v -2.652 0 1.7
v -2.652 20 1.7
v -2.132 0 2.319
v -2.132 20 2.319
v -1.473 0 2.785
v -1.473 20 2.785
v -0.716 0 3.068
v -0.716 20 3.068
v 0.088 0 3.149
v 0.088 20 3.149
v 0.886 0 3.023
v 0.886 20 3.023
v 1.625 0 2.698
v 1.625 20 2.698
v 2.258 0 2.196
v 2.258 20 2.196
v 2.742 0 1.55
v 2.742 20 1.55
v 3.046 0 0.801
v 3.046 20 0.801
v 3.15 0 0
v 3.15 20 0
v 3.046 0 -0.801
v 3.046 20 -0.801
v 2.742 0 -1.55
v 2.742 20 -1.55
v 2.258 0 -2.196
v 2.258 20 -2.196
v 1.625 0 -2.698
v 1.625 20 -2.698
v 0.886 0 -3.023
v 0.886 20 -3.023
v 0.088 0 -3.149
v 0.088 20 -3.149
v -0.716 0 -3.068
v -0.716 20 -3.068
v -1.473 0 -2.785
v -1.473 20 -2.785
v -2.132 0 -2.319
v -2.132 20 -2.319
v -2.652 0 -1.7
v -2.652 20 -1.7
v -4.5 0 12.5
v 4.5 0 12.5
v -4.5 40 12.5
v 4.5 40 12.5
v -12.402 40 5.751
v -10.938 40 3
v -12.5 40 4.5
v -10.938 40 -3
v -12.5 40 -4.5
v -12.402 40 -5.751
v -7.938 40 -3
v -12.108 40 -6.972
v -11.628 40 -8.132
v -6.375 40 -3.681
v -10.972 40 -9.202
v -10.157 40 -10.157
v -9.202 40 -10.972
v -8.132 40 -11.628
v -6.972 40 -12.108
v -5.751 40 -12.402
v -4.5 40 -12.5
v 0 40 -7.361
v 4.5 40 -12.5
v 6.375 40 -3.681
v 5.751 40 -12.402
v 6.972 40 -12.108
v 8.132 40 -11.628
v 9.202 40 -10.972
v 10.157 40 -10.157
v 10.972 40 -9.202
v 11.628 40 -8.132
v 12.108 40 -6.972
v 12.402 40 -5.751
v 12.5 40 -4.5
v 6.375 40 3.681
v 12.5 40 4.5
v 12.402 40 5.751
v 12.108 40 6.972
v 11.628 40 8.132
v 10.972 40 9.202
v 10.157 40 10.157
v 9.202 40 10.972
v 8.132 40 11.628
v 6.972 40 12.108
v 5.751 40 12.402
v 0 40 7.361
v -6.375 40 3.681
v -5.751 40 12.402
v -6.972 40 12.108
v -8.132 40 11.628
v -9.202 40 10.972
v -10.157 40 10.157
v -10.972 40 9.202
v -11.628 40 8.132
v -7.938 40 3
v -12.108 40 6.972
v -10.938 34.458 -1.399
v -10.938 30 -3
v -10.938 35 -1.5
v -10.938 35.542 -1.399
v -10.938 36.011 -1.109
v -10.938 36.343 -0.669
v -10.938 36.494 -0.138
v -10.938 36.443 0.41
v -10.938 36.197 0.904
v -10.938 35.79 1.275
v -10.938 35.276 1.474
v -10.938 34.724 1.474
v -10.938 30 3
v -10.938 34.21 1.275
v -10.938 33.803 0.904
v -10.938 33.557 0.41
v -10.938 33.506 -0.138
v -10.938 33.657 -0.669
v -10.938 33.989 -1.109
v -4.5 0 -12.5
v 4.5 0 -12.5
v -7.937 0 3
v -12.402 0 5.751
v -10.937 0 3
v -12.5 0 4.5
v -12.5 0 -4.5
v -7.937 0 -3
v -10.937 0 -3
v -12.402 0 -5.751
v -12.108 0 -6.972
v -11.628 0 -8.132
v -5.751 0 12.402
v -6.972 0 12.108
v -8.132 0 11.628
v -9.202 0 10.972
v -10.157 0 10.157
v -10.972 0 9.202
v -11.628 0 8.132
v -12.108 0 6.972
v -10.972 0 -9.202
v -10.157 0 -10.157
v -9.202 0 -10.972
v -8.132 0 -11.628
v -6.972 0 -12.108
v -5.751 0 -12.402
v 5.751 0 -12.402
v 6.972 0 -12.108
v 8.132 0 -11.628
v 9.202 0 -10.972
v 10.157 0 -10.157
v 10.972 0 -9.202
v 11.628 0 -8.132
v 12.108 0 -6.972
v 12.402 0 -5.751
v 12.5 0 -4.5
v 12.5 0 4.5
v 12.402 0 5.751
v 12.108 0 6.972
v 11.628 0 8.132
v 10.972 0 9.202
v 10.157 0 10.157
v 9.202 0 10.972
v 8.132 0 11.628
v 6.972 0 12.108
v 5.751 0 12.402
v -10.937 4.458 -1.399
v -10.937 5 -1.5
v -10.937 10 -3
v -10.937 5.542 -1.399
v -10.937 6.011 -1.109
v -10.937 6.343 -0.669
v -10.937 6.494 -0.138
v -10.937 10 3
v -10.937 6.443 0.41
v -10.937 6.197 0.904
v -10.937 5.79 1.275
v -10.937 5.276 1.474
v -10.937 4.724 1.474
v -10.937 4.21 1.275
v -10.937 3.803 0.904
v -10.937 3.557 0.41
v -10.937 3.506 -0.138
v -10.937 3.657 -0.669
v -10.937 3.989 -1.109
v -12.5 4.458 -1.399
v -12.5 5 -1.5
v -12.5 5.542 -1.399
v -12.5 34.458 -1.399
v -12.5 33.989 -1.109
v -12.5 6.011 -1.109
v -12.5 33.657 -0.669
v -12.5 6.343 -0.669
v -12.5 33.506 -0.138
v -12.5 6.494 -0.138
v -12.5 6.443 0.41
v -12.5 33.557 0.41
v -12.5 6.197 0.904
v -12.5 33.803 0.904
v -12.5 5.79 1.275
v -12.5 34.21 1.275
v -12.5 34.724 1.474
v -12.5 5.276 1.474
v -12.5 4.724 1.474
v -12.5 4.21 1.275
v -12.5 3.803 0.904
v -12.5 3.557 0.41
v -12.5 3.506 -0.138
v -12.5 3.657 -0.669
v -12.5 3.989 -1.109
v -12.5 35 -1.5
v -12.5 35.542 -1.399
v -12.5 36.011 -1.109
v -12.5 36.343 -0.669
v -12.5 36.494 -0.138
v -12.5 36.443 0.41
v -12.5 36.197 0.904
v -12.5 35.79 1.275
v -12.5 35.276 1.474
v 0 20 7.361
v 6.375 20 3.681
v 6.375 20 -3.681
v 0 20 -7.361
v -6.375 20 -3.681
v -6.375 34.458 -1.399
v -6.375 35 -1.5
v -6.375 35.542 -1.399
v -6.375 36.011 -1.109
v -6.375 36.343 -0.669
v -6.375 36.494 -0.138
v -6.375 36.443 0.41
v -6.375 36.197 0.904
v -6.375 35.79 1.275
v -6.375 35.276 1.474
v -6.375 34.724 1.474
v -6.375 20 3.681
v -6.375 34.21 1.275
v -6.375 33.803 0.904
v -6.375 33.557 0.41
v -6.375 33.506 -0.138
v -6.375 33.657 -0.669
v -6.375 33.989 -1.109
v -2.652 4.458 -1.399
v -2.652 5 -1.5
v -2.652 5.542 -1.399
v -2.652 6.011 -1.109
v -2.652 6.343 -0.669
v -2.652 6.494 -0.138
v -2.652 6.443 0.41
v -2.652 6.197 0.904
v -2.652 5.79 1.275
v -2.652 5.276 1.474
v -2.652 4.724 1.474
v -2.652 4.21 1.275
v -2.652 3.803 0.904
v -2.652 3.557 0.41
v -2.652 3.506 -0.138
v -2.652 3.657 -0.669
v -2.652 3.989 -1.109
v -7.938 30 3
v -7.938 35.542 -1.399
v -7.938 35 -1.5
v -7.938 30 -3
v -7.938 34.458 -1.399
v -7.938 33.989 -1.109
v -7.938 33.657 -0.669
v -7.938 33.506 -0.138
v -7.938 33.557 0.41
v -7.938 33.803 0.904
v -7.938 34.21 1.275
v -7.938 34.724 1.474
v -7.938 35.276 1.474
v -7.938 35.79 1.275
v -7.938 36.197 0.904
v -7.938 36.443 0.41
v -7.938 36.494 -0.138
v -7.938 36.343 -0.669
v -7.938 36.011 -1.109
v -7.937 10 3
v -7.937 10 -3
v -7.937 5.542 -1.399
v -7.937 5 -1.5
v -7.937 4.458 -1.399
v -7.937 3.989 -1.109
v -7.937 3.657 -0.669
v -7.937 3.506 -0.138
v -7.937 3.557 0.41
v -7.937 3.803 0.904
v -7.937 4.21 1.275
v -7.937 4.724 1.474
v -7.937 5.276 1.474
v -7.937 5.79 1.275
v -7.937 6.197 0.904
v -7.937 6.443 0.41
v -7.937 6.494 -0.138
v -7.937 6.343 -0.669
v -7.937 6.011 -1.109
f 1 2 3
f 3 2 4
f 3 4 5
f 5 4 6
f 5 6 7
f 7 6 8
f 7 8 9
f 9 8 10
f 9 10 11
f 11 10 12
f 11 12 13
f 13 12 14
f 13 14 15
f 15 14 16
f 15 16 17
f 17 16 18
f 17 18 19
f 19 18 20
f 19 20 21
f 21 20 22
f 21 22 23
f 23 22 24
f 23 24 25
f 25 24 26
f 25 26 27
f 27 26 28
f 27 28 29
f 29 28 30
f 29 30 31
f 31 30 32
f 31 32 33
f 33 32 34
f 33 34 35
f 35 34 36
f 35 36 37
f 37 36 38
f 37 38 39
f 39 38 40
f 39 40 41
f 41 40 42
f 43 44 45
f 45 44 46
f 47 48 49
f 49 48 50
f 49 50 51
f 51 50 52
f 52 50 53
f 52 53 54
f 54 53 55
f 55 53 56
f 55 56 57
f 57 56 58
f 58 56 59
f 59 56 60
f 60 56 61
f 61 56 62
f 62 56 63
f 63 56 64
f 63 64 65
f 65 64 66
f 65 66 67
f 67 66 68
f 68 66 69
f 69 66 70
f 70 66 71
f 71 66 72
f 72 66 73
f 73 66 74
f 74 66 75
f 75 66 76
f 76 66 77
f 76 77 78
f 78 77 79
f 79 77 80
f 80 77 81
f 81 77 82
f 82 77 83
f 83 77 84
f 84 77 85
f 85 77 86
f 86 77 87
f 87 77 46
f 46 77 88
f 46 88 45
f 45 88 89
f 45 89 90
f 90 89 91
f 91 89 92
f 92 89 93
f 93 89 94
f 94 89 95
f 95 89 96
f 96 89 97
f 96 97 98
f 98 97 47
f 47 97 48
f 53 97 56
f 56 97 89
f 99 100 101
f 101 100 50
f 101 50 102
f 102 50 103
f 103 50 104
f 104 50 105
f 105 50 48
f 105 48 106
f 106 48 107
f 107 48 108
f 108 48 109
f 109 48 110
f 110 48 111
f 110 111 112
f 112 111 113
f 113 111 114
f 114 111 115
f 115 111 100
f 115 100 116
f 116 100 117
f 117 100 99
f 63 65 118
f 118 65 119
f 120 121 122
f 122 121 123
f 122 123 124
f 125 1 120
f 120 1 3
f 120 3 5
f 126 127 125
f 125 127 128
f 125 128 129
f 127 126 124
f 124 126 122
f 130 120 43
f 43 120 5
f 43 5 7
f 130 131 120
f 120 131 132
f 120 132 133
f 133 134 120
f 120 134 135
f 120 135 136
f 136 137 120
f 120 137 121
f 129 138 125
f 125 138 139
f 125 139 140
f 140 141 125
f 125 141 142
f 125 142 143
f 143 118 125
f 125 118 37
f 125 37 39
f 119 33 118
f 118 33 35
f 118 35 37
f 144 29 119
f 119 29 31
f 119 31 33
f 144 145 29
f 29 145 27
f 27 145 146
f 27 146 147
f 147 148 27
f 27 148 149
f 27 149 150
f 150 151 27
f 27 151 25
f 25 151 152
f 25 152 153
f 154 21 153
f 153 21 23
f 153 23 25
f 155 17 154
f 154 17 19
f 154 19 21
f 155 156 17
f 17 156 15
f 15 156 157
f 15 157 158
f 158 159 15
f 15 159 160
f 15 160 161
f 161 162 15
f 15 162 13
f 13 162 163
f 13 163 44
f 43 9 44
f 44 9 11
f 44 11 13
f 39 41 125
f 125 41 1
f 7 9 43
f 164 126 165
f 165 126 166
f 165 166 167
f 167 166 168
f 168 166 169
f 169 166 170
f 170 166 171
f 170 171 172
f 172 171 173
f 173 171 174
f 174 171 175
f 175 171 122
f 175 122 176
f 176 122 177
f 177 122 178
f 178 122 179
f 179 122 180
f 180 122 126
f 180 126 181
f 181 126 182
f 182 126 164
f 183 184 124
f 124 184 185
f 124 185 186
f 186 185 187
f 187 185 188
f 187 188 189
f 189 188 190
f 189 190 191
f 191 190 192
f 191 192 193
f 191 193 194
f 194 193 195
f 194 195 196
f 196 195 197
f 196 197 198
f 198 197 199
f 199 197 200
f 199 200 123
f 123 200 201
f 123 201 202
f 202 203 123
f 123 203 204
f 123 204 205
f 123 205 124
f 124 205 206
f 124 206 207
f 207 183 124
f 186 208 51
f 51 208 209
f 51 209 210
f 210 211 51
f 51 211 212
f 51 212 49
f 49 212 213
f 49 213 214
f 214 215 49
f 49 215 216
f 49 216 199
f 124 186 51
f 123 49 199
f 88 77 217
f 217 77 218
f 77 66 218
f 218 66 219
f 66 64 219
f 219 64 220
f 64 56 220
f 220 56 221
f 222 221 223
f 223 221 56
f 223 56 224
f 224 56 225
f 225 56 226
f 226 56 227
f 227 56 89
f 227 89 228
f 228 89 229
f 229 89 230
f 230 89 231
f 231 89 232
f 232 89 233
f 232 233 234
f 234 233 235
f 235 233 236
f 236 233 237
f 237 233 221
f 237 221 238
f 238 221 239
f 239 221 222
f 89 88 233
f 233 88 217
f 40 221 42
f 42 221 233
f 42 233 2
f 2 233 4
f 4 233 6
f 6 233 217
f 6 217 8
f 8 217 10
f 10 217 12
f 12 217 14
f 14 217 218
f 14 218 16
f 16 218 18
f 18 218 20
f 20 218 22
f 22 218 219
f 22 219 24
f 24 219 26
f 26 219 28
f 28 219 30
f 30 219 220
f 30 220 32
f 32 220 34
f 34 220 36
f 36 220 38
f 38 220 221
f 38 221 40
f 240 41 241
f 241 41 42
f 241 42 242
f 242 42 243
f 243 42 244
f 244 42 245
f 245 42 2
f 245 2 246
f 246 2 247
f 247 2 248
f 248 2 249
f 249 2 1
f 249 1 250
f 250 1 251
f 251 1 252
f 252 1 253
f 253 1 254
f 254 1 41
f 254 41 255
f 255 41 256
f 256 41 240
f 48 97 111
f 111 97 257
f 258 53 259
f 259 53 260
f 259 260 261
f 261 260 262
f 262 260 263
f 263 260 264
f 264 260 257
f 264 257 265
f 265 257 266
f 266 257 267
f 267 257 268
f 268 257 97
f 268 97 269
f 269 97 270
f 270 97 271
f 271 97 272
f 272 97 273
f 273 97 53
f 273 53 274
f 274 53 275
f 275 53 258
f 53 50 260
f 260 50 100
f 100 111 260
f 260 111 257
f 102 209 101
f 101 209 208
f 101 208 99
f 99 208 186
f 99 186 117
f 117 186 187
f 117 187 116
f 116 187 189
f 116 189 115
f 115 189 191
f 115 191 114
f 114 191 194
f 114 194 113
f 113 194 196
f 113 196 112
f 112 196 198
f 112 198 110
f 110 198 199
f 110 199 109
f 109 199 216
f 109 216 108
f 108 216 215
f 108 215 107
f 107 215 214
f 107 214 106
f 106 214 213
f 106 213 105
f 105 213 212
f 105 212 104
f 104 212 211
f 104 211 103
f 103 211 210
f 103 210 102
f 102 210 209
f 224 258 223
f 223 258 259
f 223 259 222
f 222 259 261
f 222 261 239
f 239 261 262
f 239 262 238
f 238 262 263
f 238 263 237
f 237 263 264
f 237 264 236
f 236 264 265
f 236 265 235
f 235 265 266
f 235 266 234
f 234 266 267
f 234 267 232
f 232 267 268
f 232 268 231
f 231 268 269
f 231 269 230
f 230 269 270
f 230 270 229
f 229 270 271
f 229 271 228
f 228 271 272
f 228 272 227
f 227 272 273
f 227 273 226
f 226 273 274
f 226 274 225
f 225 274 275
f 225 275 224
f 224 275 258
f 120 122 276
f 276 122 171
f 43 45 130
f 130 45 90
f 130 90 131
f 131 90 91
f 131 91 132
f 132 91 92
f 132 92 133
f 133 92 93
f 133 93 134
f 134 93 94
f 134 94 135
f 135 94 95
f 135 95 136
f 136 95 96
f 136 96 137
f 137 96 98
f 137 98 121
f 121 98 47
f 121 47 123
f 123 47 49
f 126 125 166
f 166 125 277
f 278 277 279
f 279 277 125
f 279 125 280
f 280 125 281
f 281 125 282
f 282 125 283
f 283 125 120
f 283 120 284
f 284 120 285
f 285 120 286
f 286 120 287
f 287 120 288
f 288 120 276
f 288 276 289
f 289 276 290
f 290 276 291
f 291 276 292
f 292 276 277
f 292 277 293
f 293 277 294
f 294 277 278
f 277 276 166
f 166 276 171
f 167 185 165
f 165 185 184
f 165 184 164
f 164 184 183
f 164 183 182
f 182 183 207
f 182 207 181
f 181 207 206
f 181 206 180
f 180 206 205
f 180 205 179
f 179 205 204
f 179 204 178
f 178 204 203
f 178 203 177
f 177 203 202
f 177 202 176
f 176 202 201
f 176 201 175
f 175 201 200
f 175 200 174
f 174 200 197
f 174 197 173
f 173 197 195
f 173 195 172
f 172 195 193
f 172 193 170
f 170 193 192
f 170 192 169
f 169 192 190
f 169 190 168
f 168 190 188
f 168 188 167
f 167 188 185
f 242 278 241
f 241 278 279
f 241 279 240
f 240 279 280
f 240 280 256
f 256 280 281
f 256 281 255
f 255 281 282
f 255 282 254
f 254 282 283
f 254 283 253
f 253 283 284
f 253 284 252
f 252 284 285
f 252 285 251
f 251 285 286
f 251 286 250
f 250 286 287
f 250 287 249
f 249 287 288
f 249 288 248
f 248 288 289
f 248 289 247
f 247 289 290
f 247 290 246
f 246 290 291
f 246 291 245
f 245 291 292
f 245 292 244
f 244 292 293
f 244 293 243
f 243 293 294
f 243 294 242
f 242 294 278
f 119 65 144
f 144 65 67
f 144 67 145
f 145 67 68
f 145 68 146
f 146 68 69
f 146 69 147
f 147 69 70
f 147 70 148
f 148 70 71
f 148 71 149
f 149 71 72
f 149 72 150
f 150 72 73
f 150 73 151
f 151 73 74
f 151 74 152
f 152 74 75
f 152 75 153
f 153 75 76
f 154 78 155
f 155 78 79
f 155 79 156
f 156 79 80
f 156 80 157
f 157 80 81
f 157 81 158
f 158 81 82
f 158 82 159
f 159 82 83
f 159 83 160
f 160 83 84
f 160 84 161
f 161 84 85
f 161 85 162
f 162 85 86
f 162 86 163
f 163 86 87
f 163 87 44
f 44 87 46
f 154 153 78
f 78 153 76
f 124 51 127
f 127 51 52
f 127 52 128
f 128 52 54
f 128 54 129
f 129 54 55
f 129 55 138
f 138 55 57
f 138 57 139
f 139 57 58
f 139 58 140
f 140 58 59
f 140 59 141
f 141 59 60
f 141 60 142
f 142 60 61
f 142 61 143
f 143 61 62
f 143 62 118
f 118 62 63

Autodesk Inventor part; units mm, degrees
ref_plane "YZ Plane" through (0, 0, 0) normal (1, 0, 0) x (0, 1, 0)
ref_plane "XZ Plane" through (0, 0, 0) normal (0, 1, 0) x (-1, 0, 0)
ref_plane "XY Plane" through (0, 0, 0) normal (0, 0, 1) x (1, 0, 0)
sketch "Sketch11" plane through (0, 0, 0) normal (0, 1, 0) x (-1, 0, 0)
  arc A0 (2.6519, 1.7) -> (2.6519, -1.7) centre (0, 0) ccw
  line L0 (2.6519, 1.7) -> (2.6519, -1.7)
  line L1 (12.5, 12.5) -> (-12.5, 12.5)
  line L2 (-12.5, 12.5) -> (-12.5, -12.5)
  line L3 (-12.5, -12.5) -> (12.5, -12.5)
  line L4 (12.5, -12.5) -> (12.5, 12.5)
  line L5 (12.5, 12.5) -> (-12.5, -12.5) construction
  line L6 (-12.5, 12.5) -> (12.5, -12.5) construction
  dimension "d45" = 6.3
  dimension "d46" = 3.4
  dimension "d47" = 25
  dimension "d48" = 25
extrude "Extrusion8" add sketch "Sketch11" along normal blind 40
sketch "Sketch12" plane through (0, 40, 0) normal (0, 1, 0) x (1, 0, 0)
  line L0 (0, -7.3612) -> (6.375, -3.6806)
  line L1 (6.375, -3.6806) -> (6.375, 3.6806)
  line L2 (6.375, 3.6806) -> (0, 7.3612)
  line L3 (0, 7.3612) -> (-6.375, 3.6806)
  line L4 (-6.375, 3.6806) -> (-6.375, -3.6806)
  line L5 (-6.375, -3.6806) -> (0, -7.3612)
  line L6 (0, -7.3612) -> (0, 0)
  line L7 (0, 0) -> (0, 7.3612)
  point P0 (3.1875, -5.5209)
  dimension "d52" = 120
  dimension "d54" = 12.75
extrude "Extrusion9" cut sketch "Sketch12" against normal blind 20
sketch "Sketch13" plane through (0, 40, 0) normal (0, 1, 0) x (1, 0, 0)
  line L0 (-7.9375, -3) -> (-10.9375, -3)
  line L1 (-10.9375, -3) -> (-10.9375, 3)
  line L2 (-10.9375, 3) -> (-7.9375, 3)
  line L3 (-7.9375, 3) -> (-7.9375, -3)
  line L4 (-7.9375, -3) -> (-10.9375, 3) construction
  line L5 (-10.9375, -3) -> (-7.9375, 3) construction
  line L6 (-12.5, 12.5) -> (-12.5, -12.5) projected
  point P0 (0, 0)
  point P1 (-9.4375, 0)
  dimension "d57" = 3
  dimension "d58" = 6
  dimension "d59" = 3.0625
extrude "Extrusion10" cut sketch "Sketch13" against normal blind 10
sketch "Sketch14" plane through (-7.9375, 40, -3) normal (-1, 0, 0) x (0, 0, 1)
  circle A0 centre (3, -5) radius 1.5
  line L0 (6, 0) -> (6, -10) projected
  line L1 (6, -10) -> (0, -10) projected
  point P0 (3, -40)
  dimension "d62" = 3
  dimension "d63" = 3
  dimension "d64" = 5
extrude "Extrusion11" cut sketch "Sketch14" along normal mid plane 10
sketch "Sketch15" plane through (0, 0, 0) normal (0, -1, 0) x (1, 0, 0)
  line L0 (-10.937, -3) -> (-7.937, -3)
  line L1 (-7.937, -3) -> (-7.937, 3)
  line L2 (-7.937, 3) -> (-10.937, 3)
  line L3 (-10.937, 3) -> (-10.937, -3)
  line L4 (-12.5, -12.5) -> (-12.5, 12.5) projected
  point P0 (0, 0)
  point P1 (-9.437, 3)
  dimension "d67" = 3
  dimension "d68" = 6
  dimension "d69" = 4.563
  dimension "d70" = 3
extrude "Extrusion12" cut sketch "Sketch15" against normal blind 10
sketch "Sketch16" plane through (-7.937, 0, -3) normal (-1, 0, 0) x (0, 0, 1)
  circle A0 centre (3, 5) radius 1.5
  line L0 (6, 0) -> (6, 10) projected
  line L1 (-9.5, 0) -> (15.5, 0) projected
  point P0 (3, 0)
  dimension "d73" = 3
  dimension "d74" = 3
  dimension "d75" = 5
extrude "Extrusion13" cut sketch "Sketch16" along normal blind 10 and the other way blind 6
fillet "Fillet1" radius 8 4 edges at (12.5, 20, -12.5) (12.5, 20, 12.5) (-12.5, 20, -12.5) (-12.5, 20, 12.5)
properties part number "collar"
